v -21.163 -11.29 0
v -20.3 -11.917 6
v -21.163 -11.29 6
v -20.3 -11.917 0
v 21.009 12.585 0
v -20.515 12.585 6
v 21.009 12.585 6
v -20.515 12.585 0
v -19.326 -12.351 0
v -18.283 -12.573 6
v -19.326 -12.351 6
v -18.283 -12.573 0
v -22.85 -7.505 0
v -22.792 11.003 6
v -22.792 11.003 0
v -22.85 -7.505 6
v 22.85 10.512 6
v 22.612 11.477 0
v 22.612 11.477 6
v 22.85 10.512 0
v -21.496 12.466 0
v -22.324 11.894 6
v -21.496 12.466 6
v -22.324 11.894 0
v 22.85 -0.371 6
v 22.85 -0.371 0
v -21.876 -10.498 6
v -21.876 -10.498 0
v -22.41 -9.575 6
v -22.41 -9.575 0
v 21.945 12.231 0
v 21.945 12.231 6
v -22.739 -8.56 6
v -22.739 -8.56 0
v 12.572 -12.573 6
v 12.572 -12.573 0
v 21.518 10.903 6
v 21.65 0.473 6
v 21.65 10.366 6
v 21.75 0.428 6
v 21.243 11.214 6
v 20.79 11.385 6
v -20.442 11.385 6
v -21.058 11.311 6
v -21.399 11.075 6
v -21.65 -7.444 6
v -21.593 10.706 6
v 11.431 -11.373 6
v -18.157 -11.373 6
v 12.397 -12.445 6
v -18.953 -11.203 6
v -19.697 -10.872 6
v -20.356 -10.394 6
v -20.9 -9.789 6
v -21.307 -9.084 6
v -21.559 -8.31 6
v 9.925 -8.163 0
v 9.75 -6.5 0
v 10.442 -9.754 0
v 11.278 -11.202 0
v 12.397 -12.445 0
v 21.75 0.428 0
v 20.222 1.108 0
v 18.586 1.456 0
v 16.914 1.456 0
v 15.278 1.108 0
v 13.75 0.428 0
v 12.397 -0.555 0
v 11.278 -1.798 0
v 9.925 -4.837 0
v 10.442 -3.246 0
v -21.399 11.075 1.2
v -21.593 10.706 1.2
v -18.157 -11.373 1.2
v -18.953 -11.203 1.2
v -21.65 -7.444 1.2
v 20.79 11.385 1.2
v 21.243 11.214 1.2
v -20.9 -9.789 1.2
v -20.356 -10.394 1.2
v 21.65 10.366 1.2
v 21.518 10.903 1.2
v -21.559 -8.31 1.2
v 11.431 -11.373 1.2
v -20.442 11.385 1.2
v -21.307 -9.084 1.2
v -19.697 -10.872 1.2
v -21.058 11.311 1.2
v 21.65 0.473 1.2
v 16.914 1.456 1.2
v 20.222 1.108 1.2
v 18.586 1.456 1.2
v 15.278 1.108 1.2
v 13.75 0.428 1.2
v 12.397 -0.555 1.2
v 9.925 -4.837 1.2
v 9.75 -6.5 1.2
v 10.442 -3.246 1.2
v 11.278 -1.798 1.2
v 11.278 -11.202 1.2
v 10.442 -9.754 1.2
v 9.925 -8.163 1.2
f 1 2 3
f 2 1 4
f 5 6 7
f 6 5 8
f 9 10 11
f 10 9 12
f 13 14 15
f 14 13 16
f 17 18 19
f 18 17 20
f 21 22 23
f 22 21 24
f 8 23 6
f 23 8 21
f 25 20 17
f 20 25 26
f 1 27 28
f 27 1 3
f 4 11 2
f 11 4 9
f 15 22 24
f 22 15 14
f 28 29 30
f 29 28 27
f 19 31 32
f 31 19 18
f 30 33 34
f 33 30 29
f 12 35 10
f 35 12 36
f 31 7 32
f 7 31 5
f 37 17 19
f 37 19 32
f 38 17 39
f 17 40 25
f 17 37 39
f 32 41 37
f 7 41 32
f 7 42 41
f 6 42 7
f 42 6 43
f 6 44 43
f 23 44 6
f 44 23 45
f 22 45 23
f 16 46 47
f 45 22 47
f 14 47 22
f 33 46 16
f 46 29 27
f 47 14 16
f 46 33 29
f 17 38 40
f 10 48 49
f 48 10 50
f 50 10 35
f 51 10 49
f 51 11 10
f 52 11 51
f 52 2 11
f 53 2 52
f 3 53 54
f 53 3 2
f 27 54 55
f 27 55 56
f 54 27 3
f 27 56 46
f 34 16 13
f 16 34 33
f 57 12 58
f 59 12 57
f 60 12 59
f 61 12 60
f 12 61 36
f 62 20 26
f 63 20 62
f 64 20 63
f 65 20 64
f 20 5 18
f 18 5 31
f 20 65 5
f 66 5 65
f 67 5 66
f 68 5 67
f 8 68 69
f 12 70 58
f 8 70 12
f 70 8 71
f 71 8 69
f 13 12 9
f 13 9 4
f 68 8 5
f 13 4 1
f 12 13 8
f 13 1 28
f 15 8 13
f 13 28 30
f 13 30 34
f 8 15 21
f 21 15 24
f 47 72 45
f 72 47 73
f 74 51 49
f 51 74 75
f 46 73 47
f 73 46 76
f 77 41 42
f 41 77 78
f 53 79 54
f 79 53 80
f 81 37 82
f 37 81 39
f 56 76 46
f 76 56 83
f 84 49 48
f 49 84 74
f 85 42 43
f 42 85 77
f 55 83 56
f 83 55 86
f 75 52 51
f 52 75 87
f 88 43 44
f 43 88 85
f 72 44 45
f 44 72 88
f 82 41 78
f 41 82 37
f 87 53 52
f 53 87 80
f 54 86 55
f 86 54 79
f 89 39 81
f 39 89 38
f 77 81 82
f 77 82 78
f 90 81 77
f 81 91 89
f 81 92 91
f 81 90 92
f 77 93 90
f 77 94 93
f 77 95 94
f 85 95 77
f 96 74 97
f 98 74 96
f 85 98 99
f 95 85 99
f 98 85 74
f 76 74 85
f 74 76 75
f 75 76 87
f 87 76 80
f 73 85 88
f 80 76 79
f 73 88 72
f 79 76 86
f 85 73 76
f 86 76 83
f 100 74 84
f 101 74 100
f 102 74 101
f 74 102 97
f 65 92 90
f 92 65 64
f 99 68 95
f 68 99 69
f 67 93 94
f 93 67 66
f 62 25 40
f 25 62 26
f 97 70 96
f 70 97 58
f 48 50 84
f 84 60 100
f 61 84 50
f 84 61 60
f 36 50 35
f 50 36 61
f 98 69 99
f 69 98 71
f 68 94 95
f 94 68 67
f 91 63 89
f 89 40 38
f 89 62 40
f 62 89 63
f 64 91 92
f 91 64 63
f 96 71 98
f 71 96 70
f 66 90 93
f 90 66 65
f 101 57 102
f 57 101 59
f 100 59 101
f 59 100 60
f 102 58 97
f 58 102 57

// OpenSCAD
cap_width = 45.5;
cap_height = 25;
cap_depth = 6;
cap_bc_radius = 5;
cap_tc_radius = 2;
cap_thickness = 1.2;
cap_outset=0.1;

cable_corner_inset_x = 5;
cable_corner_inset_y = 6;
cable_cutout_radius = 8;

$fs = 1;

module cap_profile () {
  hull () {
    translate([cap_width/2-cap_tc_radius,cap_height/2-cap_tc_radius]) circle(cap_tc_radius);
    translate([-cap_width/2+cap_tc_radius,cap_height/2-cap_tc_radius]) circle(cap_tc_radius);
    translate([cap_width/2-cap_bc_radius,-cap_height/2+cap_bc_radius]) circle(cap_bc_radius);
    translate([-cap_width/2+cap_bc_radius,-cap_height/2+cap_bc_radius]) circle(cap_bc_radius);
  }
}
module marking () {
  translate([-6,0]) {
    text(str(cap_width, "x", cap_height, "x", cap_depth),
      size=4, halign="left", valign="center");
    translate([0,-5])
      text(str("T", cap_thickness ),
        size=4, halign="left", valign="center");
    translate([6,5])
      text(str("+", cap_outset),
        size=4, halign="left", valign="center");
  }
  translate([cap_width/2-max(cap_tc_radius,4),cap_height/2-max(cap_tc_radius,4)])
    text(str(cap_tc_radius),
      size=4, halign="center", valign="center");
  translate([cap_width/2-max(cap_bc_radius,4),-cap_height/2+max(cap_bc_radius,4)])
    text(str(cap_bc_radius),
      size=4, halign="center", valign="center");
  translate([-cap_width/2+2,-cap_height/2+cable_corner_inset_y+cable_cutout_radius+1]){
    text(str("R", cable_cutout_radius),
      size=4, halign="left", valign="bottom");
    translate([0,5]) text(str("X", cable_corner_inset_x,"Y", cable_corner_inset_y),
      size=4, halign="left", valign="bottom");
  }
}

difference () {
  linear_extrude(cap_depth) offset(delta=cap_outset) cap_profile();
  translate([0,0,cap_thickness]) linear_extrude(cap_depth+1)
    offset(delta=-cap_thickness+cap_outset) cap_profile();
  translate([cap_width/2-cable_corner_inset_x,-cap_height/2+cable_corner_inset_y,-1])
    cylinder(r=cable_cutout_radius, h=cap_height+2);
  //translate([0,0,-1]) linear_extrude(1.4) mirror([1,0]) marking();
}
